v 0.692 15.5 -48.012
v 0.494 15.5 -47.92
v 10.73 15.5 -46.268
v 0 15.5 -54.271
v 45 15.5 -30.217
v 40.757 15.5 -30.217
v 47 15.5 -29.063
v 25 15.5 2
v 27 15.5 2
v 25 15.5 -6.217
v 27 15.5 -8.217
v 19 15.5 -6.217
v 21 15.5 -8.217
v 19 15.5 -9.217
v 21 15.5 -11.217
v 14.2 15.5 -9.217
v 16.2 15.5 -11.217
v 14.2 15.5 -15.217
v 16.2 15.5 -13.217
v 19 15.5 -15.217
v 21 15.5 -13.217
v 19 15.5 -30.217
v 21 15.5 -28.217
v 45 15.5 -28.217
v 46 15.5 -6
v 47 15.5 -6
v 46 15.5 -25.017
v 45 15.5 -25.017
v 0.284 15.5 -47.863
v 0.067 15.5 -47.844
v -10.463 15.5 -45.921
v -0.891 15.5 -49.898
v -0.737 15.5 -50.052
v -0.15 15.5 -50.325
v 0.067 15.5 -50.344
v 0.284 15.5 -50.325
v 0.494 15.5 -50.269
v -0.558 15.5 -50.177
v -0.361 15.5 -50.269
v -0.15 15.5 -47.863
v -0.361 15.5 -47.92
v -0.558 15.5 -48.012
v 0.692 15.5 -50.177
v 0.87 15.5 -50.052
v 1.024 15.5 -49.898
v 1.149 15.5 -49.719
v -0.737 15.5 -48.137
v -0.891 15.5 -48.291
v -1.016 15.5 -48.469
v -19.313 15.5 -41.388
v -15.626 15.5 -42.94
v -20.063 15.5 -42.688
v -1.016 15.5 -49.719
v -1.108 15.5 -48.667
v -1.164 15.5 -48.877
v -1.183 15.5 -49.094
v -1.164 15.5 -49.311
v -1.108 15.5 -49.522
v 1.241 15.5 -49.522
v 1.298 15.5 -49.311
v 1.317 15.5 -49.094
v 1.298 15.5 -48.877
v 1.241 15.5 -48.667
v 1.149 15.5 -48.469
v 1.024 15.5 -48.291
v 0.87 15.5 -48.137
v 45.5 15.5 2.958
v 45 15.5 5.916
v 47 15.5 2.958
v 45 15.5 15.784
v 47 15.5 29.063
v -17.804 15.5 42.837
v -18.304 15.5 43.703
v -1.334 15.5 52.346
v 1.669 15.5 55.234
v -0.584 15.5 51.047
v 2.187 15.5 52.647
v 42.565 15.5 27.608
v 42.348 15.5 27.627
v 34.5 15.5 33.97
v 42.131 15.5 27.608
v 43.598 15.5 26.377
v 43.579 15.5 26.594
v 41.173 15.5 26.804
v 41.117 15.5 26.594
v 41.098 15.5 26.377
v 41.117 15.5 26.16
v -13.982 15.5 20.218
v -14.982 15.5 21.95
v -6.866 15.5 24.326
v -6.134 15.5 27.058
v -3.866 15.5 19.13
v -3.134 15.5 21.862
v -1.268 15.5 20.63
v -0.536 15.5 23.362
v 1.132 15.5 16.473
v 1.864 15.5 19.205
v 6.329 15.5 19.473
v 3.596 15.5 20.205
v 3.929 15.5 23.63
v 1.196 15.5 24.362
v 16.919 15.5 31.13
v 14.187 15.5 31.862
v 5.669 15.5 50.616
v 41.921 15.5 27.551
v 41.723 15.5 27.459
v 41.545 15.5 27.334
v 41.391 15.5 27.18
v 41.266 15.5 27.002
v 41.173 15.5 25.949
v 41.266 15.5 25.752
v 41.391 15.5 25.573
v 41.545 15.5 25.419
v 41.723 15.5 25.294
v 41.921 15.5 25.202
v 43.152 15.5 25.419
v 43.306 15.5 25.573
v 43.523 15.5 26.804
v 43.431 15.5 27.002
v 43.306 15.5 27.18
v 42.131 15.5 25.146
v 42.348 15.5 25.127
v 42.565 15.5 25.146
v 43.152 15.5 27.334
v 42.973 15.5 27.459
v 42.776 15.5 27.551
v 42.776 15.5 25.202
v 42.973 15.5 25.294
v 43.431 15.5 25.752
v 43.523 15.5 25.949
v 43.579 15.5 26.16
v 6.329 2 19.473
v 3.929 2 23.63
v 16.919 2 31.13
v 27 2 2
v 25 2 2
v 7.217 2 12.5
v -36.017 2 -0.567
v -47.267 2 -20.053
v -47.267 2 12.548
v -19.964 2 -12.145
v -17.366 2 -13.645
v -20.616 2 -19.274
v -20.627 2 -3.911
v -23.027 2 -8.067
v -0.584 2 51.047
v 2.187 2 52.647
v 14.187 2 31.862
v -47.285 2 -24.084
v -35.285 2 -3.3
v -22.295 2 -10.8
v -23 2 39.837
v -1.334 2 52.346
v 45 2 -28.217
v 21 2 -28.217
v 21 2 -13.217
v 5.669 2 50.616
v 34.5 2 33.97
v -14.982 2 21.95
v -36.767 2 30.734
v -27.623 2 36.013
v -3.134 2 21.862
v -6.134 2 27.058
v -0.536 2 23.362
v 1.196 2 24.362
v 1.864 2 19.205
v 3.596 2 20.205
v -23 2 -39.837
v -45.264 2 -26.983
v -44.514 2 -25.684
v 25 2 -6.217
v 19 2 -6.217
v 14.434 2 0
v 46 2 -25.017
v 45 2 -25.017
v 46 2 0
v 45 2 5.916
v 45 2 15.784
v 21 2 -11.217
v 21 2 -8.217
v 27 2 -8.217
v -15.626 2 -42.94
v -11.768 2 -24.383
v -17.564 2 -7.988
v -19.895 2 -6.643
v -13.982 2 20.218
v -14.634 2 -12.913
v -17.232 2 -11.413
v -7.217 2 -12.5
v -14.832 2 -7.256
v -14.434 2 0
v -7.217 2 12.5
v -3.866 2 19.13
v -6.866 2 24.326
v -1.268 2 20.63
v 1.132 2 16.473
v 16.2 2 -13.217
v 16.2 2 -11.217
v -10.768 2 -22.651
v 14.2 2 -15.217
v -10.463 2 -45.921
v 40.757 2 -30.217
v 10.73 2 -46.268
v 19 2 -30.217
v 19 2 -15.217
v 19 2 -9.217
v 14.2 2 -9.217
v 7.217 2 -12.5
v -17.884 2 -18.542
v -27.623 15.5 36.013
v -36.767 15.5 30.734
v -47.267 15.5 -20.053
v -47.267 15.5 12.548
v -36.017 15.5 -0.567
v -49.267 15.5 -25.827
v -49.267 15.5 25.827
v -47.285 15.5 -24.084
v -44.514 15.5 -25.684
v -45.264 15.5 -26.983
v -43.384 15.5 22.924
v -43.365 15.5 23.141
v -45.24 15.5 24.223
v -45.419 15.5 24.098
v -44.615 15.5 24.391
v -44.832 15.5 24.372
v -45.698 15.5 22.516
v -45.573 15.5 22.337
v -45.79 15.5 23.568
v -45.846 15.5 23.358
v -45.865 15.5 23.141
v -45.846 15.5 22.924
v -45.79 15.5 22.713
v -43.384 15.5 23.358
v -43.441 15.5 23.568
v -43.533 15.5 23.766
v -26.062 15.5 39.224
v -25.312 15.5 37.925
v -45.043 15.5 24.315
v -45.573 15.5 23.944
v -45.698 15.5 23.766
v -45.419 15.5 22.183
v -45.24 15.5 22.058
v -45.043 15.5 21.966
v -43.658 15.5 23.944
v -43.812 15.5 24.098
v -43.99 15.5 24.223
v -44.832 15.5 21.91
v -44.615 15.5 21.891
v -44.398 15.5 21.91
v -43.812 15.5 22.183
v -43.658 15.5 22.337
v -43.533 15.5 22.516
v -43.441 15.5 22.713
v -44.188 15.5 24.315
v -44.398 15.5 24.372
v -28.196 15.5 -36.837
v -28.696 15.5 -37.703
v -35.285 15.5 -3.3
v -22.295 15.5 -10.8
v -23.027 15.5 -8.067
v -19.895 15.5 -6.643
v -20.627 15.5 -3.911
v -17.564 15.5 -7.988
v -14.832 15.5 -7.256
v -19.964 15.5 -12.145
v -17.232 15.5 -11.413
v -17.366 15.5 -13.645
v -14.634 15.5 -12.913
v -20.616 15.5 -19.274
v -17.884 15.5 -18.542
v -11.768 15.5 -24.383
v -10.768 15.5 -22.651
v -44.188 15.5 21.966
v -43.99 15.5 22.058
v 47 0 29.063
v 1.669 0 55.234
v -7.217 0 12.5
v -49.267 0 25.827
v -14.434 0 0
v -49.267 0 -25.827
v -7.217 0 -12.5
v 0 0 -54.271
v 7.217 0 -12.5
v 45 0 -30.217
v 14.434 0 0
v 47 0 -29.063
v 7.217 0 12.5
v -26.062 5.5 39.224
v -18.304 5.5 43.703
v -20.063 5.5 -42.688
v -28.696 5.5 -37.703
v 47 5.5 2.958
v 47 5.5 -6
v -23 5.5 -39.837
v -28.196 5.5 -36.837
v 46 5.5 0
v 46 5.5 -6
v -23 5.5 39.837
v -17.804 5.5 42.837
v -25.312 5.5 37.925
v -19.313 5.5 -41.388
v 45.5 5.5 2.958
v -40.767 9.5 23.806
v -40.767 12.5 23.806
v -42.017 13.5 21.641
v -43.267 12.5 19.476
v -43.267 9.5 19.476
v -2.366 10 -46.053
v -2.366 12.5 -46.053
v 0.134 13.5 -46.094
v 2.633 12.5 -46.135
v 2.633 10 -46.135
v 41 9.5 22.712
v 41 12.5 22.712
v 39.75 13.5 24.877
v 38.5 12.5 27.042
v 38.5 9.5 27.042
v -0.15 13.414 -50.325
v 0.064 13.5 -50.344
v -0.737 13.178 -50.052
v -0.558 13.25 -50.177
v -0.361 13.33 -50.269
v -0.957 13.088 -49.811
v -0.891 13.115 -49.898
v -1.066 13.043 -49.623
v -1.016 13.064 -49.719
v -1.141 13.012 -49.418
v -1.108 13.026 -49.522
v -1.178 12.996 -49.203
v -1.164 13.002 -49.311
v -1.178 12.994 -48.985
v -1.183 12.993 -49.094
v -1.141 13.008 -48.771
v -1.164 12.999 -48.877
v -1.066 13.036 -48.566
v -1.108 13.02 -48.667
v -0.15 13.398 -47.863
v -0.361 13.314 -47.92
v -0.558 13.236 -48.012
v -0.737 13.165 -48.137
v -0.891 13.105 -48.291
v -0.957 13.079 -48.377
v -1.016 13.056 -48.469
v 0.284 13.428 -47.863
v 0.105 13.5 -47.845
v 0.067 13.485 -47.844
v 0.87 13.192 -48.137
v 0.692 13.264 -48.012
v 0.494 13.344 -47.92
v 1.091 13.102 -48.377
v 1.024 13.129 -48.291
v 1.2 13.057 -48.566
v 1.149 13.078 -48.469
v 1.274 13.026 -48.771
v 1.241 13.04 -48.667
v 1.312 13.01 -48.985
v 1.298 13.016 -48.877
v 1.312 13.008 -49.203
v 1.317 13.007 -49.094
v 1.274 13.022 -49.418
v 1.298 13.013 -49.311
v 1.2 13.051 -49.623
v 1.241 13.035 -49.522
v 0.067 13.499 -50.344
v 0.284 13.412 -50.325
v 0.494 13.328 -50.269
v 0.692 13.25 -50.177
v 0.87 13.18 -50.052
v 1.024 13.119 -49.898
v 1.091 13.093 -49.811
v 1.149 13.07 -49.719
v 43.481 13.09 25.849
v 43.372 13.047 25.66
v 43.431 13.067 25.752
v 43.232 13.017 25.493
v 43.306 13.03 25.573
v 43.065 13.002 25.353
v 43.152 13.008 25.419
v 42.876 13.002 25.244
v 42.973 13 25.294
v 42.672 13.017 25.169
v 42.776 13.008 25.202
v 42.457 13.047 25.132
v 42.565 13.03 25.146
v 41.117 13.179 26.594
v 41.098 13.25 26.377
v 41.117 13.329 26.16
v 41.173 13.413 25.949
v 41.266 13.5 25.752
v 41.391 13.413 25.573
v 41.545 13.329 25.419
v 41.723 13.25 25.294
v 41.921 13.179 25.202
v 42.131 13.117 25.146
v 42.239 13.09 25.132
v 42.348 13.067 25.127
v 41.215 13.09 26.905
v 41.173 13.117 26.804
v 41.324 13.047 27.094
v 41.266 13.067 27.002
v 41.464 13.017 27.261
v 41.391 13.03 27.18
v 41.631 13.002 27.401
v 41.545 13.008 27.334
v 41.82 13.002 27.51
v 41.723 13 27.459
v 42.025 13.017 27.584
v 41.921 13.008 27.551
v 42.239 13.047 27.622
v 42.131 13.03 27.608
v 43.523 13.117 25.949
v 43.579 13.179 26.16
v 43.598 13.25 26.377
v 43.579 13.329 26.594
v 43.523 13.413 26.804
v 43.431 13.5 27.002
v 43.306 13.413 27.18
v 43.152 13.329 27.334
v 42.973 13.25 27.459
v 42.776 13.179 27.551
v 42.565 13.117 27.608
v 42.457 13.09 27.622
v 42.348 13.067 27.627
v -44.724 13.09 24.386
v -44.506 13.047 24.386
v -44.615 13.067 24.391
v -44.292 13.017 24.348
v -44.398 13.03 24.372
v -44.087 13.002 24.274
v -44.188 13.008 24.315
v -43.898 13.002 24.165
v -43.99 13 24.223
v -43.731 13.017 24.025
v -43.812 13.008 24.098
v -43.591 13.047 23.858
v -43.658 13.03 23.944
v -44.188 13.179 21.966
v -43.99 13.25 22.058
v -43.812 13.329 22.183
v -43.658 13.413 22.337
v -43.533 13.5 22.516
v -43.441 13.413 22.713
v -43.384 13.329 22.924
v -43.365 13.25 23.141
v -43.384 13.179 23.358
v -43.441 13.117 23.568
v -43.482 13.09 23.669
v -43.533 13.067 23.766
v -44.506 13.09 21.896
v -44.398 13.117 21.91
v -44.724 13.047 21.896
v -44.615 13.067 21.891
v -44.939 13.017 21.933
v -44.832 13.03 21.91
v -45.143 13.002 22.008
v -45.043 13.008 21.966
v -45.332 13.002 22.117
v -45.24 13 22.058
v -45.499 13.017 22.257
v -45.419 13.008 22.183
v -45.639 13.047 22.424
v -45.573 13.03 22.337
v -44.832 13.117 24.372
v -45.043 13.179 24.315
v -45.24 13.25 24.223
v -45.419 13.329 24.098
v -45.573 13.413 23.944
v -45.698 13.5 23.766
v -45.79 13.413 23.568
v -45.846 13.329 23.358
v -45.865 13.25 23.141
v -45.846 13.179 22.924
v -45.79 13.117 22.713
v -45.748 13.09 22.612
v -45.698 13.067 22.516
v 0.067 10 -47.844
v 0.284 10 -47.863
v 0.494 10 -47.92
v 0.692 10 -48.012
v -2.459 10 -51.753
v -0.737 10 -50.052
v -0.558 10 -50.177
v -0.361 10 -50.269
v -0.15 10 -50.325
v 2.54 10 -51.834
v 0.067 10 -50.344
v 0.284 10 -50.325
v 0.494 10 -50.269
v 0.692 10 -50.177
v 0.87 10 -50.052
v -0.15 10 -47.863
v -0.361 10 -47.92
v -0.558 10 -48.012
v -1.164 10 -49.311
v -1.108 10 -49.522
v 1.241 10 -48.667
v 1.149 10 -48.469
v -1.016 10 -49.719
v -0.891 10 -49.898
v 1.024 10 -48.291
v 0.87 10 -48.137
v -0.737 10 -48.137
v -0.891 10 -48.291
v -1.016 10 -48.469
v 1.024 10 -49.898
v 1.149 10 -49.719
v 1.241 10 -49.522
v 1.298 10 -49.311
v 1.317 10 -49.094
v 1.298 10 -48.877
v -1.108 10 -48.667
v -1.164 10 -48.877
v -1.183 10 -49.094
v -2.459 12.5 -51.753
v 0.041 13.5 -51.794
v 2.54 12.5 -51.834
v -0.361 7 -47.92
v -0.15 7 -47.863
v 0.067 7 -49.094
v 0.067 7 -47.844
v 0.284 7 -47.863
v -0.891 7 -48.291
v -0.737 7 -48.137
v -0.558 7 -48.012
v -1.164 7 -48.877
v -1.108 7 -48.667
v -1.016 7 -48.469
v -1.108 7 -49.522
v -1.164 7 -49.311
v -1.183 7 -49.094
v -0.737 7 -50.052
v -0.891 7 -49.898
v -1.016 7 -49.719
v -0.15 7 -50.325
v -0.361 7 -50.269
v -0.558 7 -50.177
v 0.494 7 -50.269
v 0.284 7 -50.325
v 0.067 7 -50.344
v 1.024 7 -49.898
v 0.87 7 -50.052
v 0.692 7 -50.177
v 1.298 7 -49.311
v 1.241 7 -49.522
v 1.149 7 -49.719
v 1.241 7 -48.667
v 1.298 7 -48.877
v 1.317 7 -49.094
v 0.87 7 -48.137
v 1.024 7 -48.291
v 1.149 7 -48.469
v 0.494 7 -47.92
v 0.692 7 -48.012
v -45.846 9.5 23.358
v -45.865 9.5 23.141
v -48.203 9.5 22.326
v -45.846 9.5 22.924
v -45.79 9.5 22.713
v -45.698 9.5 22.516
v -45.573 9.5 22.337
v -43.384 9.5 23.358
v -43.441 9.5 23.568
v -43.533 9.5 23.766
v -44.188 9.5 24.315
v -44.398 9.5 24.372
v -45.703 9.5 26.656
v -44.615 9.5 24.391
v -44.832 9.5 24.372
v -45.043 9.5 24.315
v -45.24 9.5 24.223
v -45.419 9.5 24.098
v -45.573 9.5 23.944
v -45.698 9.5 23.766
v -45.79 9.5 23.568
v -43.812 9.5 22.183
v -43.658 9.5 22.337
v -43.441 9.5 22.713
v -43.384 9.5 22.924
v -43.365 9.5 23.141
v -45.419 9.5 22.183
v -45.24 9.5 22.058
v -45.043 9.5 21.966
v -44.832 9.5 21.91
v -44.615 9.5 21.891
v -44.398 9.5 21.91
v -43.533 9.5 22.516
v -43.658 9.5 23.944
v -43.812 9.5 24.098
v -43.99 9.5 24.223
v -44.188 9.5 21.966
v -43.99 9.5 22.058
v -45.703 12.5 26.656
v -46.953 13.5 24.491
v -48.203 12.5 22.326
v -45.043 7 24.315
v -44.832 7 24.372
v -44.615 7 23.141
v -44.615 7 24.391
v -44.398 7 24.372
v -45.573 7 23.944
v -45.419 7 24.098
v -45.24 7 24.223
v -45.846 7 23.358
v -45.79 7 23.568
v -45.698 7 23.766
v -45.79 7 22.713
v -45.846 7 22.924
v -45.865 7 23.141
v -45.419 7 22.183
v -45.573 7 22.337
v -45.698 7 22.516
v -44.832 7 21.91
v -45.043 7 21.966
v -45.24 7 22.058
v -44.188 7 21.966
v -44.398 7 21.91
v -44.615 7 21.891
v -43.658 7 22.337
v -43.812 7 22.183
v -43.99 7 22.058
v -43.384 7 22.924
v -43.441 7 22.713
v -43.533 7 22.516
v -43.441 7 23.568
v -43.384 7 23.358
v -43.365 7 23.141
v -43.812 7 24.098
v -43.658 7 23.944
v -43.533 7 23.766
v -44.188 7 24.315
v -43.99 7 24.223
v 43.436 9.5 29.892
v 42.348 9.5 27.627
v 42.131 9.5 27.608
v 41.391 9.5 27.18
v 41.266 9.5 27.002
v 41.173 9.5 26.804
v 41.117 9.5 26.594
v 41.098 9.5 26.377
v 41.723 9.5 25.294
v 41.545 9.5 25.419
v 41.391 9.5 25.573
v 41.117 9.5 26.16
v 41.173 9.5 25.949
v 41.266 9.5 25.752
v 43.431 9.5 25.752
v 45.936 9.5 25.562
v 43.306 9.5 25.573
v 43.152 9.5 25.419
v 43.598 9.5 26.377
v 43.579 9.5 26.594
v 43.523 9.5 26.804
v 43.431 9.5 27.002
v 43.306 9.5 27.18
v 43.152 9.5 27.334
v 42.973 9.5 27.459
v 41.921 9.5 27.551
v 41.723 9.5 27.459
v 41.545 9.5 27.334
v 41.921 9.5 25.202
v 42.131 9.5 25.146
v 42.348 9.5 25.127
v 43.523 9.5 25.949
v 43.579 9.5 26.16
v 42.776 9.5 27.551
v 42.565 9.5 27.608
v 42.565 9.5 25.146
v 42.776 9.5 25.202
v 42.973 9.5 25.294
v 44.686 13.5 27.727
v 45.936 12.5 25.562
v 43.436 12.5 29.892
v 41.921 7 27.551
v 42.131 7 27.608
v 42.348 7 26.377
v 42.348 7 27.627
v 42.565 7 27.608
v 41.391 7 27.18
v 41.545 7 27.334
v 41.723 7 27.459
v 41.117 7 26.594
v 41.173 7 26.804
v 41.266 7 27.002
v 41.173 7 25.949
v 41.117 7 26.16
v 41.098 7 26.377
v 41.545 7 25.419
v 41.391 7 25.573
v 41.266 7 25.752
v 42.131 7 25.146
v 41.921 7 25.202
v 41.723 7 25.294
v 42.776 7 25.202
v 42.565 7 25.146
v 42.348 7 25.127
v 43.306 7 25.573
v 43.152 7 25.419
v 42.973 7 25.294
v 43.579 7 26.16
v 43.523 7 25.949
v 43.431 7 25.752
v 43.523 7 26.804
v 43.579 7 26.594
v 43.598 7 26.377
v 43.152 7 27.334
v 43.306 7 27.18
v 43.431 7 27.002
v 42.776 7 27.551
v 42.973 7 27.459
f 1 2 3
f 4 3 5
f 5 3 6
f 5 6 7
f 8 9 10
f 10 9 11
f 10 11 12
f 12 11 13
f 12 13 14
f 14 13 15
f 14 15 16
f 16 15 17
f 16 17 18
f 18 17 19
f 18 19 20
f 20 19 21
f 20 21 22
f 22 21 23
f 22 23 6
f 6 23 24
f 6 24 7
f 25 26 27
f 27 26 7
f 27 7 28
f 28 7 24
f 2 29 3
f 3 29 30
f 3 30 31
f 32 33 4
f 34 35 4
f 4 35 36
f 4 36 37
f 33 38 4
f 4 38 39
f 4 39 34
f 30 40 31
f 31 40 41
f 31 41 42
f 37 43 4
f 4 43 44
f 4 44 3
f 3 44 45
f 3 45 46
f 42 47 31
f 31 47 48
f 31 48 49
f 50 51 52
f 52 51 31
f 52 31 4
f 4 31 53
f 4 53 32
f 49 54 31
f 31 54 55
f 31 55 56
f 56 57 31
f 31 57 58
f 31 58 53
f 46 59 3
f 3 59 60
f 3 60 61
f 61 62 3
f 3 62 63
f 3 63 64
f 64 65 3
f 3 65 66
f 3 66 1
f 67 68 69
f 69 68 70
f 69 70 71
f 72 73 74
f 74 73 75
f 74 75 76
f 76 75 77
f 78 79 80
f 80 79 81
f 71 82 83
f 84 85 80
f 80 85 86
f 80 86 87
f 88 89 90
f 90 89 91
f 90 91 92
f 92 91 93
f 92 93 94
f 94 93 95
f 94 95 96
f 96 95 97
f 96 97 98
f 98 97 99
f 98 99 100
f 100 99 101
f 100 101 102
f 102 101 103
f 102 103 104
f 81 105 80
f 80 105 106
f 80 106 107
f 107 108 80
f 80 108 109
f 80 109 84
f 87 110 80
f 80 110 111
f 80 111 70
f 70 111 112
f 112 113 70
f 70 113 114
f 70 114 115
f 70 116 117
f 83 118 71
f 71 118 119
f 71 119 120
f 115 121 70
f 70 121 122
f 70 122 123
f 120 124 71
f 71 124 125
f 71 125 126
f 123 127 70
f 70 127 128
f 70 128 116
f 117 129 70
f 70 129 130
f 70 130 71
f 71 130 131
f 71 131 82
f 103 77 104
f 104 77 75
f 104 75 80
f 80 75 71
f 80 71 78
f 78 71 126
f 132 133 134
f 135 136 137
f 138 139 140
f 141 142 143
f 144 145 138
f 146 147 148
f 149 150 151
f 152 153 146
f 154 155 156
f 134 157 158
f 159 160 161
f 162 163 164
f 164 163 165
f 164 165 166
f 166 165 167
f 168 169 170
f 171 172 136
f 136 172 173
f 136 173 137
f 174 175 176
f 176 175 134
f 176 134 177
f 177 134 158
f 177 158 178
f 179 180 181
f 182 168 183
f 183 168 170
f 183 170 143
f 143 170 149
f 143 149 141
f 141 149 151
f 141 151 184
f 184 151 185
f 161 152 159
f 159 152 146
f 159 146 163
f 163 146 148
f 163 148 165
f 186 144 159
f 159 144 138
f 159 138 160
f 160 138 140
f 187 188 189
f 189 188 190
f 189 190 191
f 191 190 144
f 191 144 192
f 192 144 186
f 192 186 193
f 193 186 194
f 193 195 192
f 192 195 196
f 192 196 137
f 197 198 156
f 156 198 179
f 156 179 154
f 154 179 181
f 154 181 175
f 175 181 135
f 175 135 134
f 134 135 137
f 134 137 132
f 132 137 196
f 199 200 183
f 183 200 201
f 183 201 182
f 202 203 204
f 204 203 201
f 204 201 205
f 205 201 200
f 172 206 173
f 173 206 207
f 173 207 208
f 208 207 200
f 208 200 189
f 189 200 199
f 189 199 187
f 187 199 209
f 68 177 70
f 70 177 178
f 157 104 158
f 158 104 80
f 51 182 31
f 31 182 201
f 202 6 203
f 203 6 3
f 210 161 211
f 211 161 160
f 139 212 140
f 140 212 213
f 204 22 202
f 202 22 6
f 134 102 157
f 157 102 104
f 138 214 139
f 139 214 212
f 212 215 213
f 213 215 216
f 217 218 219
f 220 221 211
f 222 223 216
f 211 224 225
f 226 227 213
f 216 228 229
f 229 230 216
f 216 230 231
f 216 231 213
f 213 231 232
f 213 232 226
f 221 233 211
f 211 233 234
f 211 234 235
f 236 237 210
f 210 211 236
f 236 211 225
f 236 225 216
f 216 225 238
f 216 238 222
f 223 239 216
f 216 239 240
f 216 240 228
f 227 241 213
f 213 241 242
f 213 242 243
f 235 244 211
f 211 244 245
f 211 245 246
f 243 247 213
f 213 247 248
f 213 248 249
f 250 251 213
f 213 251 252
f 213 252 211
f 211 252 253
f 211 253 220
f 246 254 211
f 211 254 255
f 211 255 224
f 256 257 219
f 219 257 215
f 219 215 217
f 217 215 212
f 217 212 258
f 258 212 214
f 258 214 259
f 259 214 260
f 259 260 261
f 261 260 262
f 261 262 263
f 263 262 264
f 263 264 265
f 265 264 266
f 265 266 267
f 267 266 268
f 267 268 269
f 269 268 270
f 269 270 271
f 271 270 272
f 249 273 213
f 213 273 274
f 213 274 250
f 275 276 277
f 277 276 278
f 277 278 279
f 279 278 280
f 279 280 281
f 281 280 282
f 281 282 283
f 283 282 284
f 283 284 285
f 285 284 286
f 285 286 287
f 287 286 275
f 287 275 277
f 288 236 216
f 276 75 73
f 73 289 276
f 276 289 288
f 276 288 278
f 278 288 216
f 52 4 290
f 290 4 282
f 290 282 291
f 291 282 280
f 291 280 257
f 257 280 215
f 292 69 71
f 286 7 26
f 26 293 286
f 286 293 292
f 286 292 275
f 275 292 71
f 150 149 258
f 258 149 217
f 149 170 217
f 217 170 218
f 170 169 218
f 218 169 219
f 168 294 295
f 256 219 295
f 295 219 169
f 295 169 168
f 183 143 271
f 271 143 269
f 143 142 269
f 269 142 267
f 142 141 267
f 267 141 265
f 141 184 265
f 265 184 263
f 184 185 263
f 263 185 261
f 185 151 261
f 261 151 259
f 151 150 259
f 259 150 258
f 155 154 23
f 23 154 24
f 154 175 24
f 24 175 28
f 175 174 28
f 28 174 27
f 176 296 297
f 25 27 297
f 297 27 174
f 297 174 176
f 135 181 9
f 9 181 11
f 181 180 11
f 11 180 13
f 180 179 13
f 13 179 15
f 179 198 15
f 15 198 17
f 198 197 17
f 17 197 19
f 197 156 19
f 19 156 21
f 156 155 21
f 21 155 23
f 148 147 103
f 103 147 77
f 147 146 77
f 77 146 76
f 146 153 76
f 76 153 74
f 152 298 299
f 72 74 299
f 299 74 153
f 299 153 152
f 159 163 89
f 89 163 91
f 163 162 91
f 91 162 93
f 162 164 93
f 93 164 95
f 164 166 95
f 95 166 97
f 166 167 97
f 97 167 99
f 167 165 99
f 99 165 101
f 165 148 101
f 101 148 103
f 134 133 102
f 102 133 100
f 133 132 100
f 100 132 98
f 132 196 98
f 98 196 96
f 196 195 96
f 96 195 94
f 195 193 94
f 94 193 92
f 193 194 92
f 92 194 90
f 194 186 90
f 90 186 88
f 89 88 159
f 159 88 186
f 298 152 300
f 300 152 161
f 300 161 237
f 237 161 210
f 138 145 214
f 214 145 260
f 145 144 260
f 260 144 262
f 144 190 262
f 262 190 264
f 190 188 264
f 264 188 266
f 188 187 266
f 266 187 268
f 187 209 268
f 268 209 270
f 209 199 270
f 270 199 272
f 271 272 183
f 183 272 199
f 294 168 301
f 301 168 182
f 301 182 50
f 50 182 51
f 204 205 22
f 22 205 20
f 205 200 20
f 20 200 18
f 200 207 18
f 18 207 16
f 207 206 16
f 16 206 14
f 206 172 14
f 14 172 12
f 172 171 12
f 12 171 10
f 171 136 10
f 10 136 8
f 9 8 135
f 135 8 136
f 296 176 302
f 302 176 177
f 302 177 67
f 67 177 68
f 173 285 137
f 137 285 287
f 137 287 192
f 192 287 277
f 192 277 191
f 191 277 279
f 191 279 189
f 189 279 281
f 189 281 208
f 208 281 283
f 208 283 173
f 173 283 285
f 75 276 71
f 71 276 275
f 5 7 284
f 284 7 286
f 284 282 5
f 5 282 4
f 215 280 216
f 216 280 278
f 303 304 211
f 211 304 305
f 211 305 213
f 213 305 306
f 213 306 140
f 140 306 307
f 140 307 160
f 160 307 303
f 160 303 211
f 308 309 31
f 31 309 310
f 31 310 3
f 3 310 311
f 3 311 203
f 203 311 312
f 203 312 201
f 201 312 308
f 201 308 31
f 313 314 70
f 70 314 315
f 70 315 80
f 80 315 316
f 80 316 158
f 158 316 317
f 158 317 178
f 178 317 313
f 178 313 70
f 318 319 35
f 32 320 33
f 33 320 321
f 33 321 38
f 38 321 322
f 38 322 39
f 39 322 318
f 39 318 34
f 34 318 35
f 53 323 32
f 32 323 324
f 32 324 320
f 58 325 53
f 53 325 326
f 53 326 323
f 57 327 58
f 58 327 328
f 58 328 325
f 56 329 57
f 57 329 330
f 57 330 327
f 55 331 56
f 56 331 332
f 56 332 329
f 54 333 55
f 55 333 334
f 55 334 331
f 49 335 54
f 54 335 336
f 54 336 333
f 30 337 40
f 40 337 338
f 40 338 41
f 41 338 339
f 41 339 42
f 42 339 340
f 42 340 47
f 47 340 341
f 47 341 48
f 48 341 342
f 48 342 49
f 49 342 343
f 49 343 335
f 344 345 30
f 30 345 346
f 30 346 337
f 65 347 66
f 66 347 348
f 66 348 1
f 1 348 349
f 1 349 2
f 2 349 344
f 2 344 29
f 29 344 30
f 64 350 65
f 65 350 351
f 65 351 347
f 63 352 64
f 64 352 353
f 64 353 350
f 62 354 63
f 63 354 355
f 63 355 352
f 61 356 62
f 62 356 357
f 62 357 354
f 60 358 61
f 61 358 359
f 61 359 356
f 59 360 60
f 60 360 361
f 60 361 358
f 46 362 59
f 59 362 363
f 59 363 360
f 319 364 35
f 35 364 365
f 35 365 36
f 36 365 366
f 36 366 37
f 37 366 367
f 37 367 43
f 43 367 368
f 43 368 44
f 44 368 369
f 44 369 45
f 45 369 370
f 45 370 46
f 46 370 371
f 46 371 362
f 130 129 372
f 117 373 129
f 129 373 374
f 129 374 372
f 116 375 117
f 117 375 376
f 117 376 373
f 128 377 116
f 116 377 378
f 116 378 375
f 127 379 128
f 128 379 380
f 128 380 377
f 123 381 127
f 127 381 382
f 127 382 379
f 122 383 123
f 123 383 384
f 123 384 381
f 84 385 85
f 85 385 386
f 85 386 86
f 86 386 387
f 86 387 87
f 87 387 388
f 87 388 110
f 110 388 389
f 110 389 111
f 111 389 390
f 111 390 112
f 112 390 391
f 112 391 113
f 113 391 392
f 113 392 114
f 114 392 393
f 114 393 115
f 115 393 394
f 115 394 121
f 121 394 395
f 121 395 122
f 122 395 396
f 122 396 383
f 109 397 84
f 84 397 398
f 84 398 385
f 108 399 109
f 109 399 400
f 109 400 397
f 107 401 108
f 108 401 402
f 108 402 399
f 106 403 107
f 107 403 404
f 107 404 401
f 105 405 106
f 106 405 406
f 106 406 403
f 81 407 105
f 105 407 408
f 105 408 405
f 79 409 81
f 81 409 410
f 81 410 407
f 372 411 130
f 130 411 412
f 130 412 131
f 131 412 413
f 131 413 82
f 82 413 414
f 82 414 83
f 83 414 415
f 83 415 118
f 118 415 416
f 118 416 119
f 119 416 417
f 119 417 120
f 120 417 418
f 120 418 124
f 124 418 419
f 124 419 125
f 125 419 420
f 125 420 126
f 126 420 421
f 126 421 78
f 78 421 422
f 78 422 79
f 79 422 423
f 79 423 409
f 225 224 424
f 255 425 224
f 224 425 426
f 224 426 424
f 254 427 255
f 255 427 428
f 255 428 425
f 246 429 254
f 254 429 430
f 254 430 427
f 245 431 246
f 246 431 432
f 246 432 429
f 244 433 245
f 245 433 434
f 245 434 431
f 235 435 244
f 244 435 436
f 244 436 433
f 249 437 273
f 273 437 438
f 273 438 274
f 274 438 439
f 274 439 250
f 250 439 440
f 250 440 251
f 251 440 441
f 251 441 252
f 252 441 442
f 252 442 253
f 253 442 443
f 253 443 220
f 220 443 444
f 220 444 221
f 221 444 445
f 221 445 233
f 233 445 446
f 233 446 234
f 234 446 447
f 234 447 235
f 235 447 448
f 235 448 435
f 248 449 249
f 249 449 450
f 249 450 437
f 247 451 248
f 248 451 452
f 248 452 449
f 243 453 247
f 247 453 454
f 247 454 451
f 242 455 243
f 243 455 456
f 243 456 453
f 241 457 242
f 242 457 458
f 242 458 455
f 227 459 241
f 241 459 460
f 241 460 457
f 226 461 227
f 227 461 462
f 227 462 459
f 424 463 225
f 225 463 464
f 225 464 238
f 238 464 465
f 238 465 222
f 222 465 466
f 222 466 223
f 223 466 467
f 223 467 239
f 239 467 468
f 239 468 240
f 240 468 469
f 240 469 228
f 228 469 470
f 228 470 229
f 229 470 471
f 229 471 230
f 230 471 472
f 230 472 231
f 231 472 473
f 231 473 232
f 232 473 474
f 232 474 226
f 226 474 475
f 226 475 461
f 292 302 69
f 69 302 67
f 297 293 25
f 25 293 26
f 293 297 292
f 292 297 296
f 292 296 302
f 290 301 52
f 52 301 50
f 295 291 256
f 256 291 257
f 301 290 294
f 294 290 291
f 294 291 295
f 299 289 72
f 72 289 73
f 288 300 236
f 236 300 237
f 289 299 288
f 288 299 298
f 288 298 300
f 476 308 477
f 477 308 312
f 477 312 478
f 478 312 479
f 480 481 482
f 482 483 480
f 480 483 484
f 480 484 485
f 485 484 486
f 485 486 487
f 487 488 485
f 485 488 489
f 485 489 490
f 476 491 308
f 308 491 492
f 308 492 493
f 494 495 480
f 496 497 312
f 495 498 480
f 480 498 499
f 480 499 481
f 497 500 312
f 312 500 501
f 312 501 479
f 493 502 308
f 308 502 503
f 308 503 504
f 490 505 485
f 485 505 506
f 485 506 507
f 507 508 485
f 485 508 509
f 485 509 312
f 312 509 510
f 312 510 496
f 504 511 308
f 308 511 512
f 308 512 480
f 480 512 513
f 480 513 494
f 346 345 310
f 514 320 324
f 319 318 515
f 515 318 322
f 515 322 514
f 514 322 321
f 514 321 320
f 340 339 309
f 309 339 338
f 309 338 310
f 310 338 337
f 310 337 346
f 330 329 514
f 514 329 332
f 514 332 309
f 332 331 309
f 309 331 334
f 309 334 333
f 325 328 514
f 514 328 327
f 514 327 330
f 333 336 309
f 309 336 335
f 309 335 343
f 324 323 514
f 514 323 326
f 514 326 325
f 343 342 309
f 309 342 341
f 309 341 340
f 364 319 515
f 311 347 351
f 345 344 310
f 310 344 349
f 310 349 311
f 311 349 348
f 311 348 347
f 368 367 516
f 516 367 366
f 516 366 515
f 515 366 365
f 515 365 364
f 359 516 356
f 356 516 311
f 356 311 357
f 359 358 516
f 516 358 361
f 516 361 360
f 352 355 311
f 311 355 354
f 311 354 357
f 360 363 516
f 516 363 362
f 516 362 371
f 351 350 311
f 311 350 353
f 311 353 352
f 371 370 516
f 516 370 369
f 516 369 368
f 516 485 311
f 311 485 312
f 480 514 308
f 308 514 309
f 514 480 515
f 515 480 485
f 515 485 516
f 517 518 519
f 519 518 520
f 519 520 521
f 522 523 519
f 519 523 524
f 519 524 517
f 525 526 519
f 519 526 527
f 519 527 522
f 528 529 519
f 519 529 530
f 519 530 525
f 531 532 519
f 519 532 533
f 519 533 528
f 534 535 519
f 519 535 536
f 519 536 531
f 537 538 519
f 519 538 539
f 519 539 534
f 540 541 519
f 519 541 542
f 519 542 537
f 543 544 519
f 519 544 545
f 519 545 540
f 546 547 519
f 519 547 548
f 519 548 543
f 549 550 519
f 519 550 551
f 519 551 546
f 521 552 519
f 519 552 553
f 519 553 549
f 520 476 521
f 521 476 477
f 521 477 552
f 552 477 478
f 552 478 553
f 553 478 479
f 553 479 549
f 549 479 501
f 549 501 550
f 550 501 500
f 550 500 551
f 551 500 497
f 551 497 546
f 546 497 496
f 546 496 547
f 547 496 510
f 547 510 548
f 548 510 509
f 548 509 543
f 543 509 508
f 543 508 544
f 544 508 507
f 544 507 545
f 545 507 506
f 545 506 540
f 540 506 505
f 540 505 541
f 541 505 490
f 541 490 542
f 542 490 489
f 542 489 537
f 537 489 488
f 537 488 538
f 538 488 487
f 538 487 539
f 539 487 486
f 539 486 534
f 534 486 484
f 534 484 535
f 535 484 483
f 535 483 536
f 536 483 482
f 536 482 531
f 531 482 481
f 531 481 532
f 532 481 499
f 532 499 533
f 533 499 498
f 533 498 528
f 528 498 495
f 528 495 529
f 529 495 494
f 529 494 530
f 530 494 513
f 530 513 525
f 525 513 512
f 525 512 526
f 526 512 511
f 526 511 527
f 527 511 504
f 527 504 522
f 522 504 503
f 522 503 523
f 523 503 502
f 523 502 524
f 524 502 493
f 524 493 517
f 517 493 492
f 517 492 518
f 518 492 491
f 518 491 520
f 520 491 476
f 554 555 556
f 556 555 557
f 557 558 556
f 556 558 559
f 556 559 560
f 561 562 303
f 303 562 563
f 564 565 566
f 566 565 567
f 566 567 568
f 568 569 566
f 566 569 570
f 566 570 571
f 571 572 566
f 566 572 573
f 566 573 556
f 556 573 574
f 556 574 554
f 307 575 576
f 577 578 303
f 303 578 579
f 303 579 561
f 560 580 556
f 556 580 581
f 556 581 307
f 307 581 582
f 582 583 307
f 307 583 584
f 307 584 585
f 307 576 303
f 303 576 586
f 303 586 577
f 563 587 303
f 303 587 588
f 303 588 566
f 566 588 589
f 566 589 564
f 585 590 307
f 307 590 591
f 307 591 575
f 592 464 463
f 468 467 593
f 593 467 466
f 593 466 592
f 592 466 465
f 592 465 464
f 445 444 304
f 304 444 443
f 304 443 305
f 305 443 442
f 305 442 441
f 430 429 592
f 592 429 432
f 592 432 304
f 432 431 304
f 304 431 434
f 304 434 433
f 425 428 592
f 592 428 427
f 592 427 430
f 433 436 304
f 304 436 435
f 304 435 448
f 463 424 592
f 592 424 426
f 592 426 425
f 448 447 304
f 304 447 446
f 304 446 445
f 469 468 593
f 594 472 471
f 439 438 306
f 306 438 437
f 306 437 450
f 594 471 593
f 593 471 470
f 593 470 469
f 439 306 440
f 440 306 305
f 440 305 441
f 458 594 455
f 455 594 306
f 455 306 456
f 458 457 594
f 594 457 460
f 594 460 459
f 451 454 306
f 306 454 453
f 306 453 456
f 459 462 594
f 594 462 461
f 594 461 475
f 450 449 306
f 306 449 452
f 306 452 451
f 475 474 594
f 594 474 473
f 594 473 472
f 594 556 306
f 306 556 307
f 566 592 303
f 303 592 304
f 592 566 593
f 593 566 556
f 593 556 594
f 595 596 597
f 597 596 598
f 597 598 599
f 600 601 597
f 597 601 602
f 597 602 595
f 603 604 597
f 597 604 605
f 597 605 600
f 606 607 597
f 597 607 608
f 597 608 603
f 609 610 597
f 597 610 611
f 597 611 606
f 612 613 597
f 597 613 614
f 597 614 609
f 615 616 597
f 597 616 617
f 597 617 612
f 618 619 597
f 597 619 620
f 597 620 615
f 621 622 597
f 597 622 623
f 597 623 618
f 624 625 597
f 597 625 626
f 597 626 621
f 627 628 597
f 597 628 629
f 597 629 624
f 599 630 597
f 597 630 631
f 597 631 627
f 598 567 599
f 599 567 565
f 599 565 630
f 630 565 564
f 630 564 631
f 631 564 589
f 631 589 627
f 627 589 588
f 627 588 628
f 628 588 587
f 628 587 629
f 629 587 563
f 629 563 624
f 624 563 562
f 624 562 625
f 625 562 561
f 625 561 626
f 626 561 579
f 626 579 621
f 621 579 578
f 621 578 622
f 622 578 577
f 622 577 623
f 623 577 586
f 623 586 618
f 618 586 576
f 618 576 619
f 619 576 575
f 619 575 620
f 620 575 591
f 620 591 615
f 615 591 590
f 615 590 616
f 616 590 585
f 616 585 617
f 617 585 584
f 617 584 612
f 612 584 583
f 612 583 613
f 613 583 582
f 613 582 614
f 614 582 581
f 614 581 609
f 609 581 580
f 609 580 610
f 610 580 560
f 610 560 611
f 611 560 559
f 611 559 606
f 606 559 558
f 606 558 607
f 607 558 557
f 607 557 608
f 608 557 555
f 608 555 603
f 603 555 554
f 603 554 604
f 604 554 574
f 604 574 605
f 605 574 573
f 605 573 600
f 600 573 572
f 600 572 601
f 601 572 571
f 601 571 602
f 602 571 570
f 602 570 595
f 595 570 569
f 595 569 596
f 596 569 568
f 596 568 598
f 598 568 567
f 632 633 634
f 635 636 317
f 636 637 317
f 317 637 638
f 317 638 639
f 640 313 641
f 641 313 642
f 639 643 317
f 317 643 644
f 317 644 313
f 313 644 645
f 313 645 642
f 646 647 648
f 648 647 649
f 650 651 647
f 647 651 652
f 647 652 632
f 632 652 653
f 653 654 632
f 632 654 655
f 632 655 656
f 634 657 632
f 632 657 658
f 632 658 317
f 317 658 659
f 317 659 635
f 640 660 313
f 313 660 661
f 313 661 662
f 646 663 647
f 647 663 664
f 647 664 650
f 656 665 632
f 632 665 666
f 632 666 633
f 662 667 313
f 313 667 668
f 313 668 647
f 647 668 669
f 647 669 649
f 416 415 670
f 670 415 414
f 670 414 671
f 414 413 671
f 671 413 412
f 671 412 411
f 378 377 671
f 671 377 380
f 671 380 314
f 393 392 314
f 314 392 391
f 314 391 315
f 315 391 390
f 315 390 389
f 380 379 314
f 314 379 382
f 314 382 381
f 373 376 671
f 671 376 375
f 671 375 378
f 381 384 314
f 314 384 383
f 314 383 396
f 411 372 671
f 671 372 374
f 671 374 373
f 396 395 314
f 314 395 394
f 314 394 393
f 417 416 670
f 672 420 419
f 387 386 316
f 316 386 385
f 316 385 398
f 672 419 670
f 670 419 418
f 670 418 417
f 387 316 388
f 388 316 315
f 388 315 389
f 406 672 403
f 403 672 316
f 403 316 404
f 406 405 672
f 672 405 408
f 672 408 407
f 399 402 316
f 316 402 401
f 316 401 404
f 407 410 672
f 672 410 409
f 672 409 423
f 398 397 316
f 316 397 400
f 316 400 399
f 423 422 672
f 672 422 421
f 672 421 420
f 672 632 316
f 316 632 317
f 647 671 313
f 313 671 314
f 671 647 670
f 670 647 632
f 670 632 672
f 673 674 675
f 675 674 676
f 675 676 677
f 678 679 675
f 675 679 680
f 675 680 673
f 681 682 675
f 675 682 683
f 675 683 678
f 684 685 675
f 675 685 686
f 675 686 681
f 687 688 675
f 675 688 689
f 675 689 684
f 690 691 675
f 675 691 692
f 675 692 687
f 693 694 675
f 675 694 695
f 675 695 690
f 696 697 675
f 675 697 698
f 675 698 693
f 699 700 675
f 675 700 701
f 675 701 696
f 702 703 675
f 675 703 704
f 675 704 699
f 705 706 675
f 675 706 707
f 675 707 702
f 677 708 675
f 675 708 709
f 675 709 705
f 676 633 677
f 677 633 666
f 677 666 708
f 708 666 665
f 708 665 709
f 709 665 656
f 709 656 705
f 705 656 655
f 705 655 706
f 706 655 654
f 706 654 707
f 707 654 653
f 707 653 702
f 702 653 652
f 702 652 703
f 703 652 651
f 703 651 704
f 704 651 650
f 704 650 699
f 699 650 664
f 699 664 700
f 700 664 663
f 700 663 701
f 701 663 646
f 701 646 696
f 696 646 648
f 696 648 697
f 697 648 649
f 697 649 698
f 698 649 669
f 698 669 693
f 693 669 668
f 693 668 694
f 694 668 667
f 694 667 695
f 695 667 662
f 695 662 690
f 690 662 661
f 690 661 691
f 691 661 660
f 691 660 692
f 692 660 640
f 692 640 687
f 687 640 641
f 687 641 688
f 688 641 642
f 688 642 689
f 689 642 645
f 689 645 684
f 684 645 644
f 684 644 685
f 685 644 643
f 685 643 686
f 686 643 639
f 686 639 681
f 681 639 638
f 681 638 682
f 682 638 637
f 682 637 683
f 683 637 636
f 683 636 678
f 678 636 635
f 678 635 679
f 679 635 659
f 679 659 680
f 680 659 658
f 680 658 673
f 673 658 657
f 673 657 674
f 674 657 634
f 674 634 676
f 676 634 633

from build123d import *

# Parameters (mm, degrees)
BOSS_EXTRUDE1_DEPTH = 15.5
CUT_EXTRUDE1_DEPTH  = 24
CUT_EXTRUDE2_DEPTH  = 13.5
CUT_EXTRUDE3_DEPTH  = 13.5
CUT_EXTRUDE4_DEPTH  = 13.5
SKETCH6_R           = 1.15
CUT_EXTRUDE5_DEPTH  = 10.5
SKETCH8_W           = 5
SKETCH8_H           = 2
CUT_EXTRUDE7_DEPTH  = 5.5
SKETCH9_W           = 5
SKETCH9_H           = 2
CUT_EXTRUDE8_DEPTH  = 5.5
SKETCH10_W          = 5
SKETCH10_H          = 2
CUT_EXTRUDE9_DEPTH  = 5.5
CUT_EXTRUDE10_DEPTH = 20
BOSS_EXTRUDE2_DEPTH = 13.5
BOSS_EXTRUDE3_DEPTH = 13.5
SKETCH15_R          = 1.25
CUT_EXTRUDE11_DEPTH = 8.5
SKETCH19_W          = 17
SKETCH19_H          = 2
CUT_EXTRUDE15_DEPTH = 13.5
CUT_EXTRUDE16_DEPTH = 10
CUT_EXTRUDE17_DEPTH = 5.7
CUT_EXTRUDE18_DEPTH = 5.7
CUT_EXTRUDE19_DEPTH = 5.7


with BuildPart() as part:
    # Sketch1 → Boss-Extrude1 (new body)
    with BuildSketch(Plane(origin=(0, 0, 0), x_dir=(1, 0, 0), z_dir=(0, 1, 0))):
        Polygon((127, 0), (-63.5, 109.985226281), (-63.5, -109.985226281), align=None)
    extrude(amount=BOSS_EXTRUDE1_DEPTH)

    # Sketch2 → Cut-Extrude1 (cut)
    with BuildSketch(Plane(origin=(0, 15.5, 0), x_dir=(1, 0, 0), z_dir=(0, 1, 0))):
        Polygon((-63.5, -109.985226281), (16.5, -63.797204745), (-63.5, -17.60918321), align=None)
        Polygon((-63.5, 109.985226281), (16.5, 63.797204745), (-63.5, 17.60918321), align=None)
        Polygon((127, 0), (47, 46.188021535), (47, -46.188021535), align=None)
    extrude(amount=-CUT_EXTRUDE1_DEPTH, mode=Mode.SUBTRACT)

    # Sketch3 → Cut-Extrude2 (cut)
    with BuildSketch(Plane(origin=(0, 15.5, 0), x_dir=(1, 0, 0), z_dir=(0, 1, 0))):
        Polygon((21, 28.217265235), (21, 13.217265235), (16.2, 13.217265235), (16.2, 11.217265235), (21, 11.217265235), (21, 8.217265235), (27, 8.217265235), (27, 0), (45, 0), (46, 0), (46, 21.217265235), (46, 25.017265235), (45, 25.017265235), (45, 28.217265235), align=None)
        Polygon((14.186868519, -31.862153395), (1.196487462, -24.362153395), (3.596487462, -20.205231457), (1.864436654, -19.205231457), (-0.535563346, -23.362153395), (-3.133639557, -21.862153395), (-6.133639557, -27.058305818), (-13.25, -22.9496732), (-22.25, -38.538130468), (-23, -39.837168574), (-4.625309308, -50.445801192), (-1.334412773, -52.345801192), (-0.584412773, -51.046763086), (2.186868519, -52.646763086), align=None)
        Polygon((-35.28503876, 3.29953441), (-22.294657703, 10.79953441), (-19.894657703, 6.642612472), (-17.564436654, 7.987966222), (-19.964436654, 12.14488816), (-17.366360443, 13.64488816), (-20.616360443, 19.274053285), (-13.5, 23.382685902), (-22.5, 38.97114317), (-23, 39.837168574), (-41.374690692, 29.228535957), (-45.263757468, 26.983182207), (-44.513757468, 25.684144101), (-47.28503876, 24.084144101), align=None)
    extrude(amount=-CUT_EXTRUDE2_DEPTH, mode=Mode.SUBTRACT)

    # Sketch4 → Cut-Extrude3 (cut)
    with BuildSketch(Plane(origin=(0, 15.5, 0), x_dir=(1, 0, 0), z_dir=(0, 1, 0))):
        Polygon((3.668919326, -54.079775788), (16.5, -61.487803669), (35, -50.806823689), (45, -33.486315613), (45, -5.916079783), (46, 0), (44, 0), (44, -2), (25, -2), (25, 6.217265235), (19, 6.217265235), (19, 9.217265235), (14.2, 9.217265235), (14.2, 15.217265235), (19, 15.217265235), (19, 30.217265235), (45, 30.217265235), (45, 45.033320997), (26.5, 55.714300977), (6.5, 55.714300977), (-15.626136458, 42.939770137), (-23, 39.837168574), (-22, 38.105117767), (-20.267949192, 39.105117767), (-10.767949192, 22.650635095), (-17.884309636, 18.542002477), (-14.634309636, 12.912837353), (-17.232385847, 11.412837353), (-14.832385847, 7.255915414), (-20.626708511, 3.910561665), (-23.026708511, 8.067483603), (-36.017089568, 0.567483603), (-49.267089568, 23.517156803), (-61.5, 16.454482672), (-61.5, -4.907477288), (-51.5, -22.227985364), (-27.623475383, -36.013103279), (-23, -39.837168574), (-22, -38.105117767), (-23.732050808, -37.105117767), (-13.982050808, -20.217622393), (-6.865690364, -24.32625501), (-3.865690364, -19.130102587), (-1.267614153, -20.630102587), (1.132385847, -16.473180649), (6.32853827, -19.473180649), (3.92853827, -23.630102587), (16.918919326, -31.130102587), align=None)
    extrude(amount=-CUT_EXTRUDE3_DEPTH, mode=Mode.SUBTRACT)

    # Sketch5 → Cut-Extrude4 (cut)
    with BuildSketch(Plane(origin=(0, 2, 0), x_dir=(1, 0, 0), z_dir=(0, 1, 0))):
        Polygon((14.43375673, 0), (7.216878365, 12.5), (-7.216878365, 12.5), (-14.43375673, 0), (-7.216878365, -12.5), (7.216878365, -12.5), align=None)
    extrude(amount=-CUT_EXTRUDE4_DEPTH, mode=Mode.SUBTRACT)

    # Sketch6 → Cut-Extrude5 (cut)
    with BuildSketch(Plane(origin=(0, 15.5, 0), x_dir=(1, 0, 0), z_dir=(0, 1, 0))):
        with Locations((-59.125, -15.083275783)):
            Circle(SKETCH6_R)
        with Locations((16.5, 58.74538989)):
            Circle(SKETCH6_R)
        with Locations((42.625, -43.662114107)):
            Circle(SKETCH6_R)
    extrude(amount=-CUT_EXTRUDE5_DEPTH, mode=Mode.SUBTRACT)

    # Sketch8 → Cut-Extrude7 (cut)
    with BuildSketch(Plane(origin=(-48.25, 0, 27.857150488), x_dir=(-0.5, 0, -0.866025404), z_dir=(0.866025404, 0, -0.5))):
        with Locations((16.5, 5.1)):
            Rectangle(SKETCH8_W, SKETCH8_H)
    extrude(amount=-CUT_EXTRUDE7_DEPTH, mode=Mode.SUBTRACT)

    # Sketch9 → Cut-Extrude8 (cut)
    with BuildSketch(Plane(origin=(48.25, 0, 27.857150488), x_dir=(-0.5, 0, 0.866025404), z_dir=(-0.866025404, 0, -0.5))):
        with Locations((16.5, 5.1)):
            Rectangle(SKETCH9_W, SKETCH9_H)
    extrude(amount=-CUT_EXTRUDE8_DEPTH, mode=Mode.SUBTRACT)

    # Sketch10 → Cut-Extrude9 (cut)
    with BuildSketch(Plane.XY.offset(-55.714300977)):
        with Locations((16.5, 5.1)):
            Rectangle(SKETCH10_W, SKETCH10_H)
    extrude(amount=-CUT_EXTRUDE9_DEPTH, mode=Mode.SUBTRACT)

    # Sketch12 → Cut-Extrude10 (cut)
    with BuildSketch(Plane(origin=(0, 15.5, 0), x_dir=(1, 0, 0), z_dir=(0, 1, 0))):
        Polygon((-49.267089568, 23.517156803), (-49.267089568, -25.82655788), (-63.5, -17.60918321), (-63.5, 17.60918321), (-49.267089568, 25.82655788), align=None)
        Polygon((3.668919326, -54.079775788), (47, -29.062564697), (47, -46.188021535), (16.5, -63.797204745), (1.668919326, -55.234476326), align=None)
        Polygon((45, 30.217265235), (0, 54.270925304), (16.5, 63.797204745), (47, 46.188021535), (47, 29.062564697), align=None)
    extrude(amount=-CUT_EXTRUDE10_DEPTH, mode=Mode.SUBTRACT)

    # Sketch13 → Boss-Extrude2 (add)
    with BuildSketch(Plane(origin=(0, 2, 0), x_dir=(1, 0, 0), z_dir=(0, 1, 0))):
        Polygon((-49.267089568, -23.517156803), (-49.267089568, 23.517156803), (-47.267089568, 20.053055188), (-47.267089568, -24.671857341), align=None)
        Polygon((45, -30.217265235), (3.668919326, -54.079775788), (5.668919326, -50.615674173), (45, -27.907864158), align=None)
        Polygon((45, 30.217265235), (2.07703105, 53.160698663), (0.037424254, 51.98313113), (40.757379657, 30.217265235), align=None)
    extrude(amount=BOSS_EXTRUDE2_DEPTH)

    # Sketch14 → Boss-Extrude3 (add)
    with BuildSketch(Plane(origin=(0, 2, 0), x_dir=(1, 0, 0), z_dir=(0, 1, 0))):
        Polygon((-47.267089568, -24.671857341), (-36.767089568, -30.734035168), (-47.267089568, -12.547501688), align=None)
        Polygon((0.037424254, 51.98313113), (-10.462575746, 45.920953304), (10.730086226, 46.267627657), align=None)
        Polygon((45, -27.907864158), (45, -15.783508505), (34.5, -33.970041985), align=None)
    extrude(amount=BOSS_EXTRUDE3_DEPTH)

    # Sketch15 → Cut-Extrude11 (cut)
    with BuildSketch(Plane(origin=(0, 15.5, 0), x_dir=(1, 0, 0), z_dir=(0, 1, 0))):
        with Locations((-44.615165779, -23.140768428)):
            Circle(SKETCH15_R)
        with Locations((42.348076211, -26.376775245)):
            Circle(SKETCH15_R)
        with Locations((0.06687762, 49.09429048)):
            Circle(SKETCH15_R)
    extrude(amount=-CUT_EXTRUDE11_DEPTH, mode=Mode.SUBTRACT)

    # Sketch19 → Cut-Extrude15 (cut)
    with BuildSketch(Plane(origin=(0, 15.5, 0), x_dir=(1, 0, 0), z_dir=(0, 1, 0))):
        Polygon((-13.25, -22.9496732), (-22, -38.105117767), (-23.732050808, -37.105117767), (-14.982050808, -21.9496732), align=None)
        Polygon((-13.5, 23.382685902), (-22, 38.105117767), (-20.267949192, 39.105117767), (-11.767949192, 24.382685902), align=None)
        with Locations((35.5, -1)):
            Rectangle(SKETCH19_W, SKETCH19_H)
    extrude(amount=-CUT_EXTRUDE15_DEPTH, mode=Mode.SUBTRACT)

    # Sketch20 → Cut-Extrude16 (cut)
    with BuildSketch(Plane(origin=(0, 15.5, 0), x_dir=(1, 0, 0), z_dir=(0, 1, 0))):
        Polygon((46, 0), (45.5, -2.958039892), (47, -2.958039892), (47, 0), (47, 6), (46, 6), align=None)
        Polygon((-23, 39.837168574), (-28.196152423, 36.837168574), (-28.696152423, 37.703193978), (-23.5, 40.703193978), (-20.063068229, 42.687507461), (-19.313068229, 41.388469355), align=None)
        Polygon((-23, -39.837168574), (-17.803847577, -42.837168574), (-18.303847577, -43.703193978), (-23.5, -40.703193978), (-26.061737691, -39.224174032), (-25.311737691, -37.925135926), align=None)
    extrude(amount=-CUT_EXTRUDE16_DEPTH, mode=Mode.SUBTRACT)

    # Sketch16 → Cut-Extrude17 (cut)
    with BuildSketch(Plane(origin=(-0.753783321, 0, -46.079771924), x_dir=(0.999866231, 0, -0.016356038), z_dir=(0.016356038, 0, 0.999866231))):
        Polygon((-1.612342698, 12.5), (0.887657302, 13.5), (3.387657302, 12.5), (3.387657302, 10), (-1.612342698, 10), align=None)
    extrude(amount=-CUT_EXTRUDE17_DEPTH, mode=Mode.SUBTRACT)

    # Sketch17 → Cut-Extrude18 (cut)
    with BuildSketch(Plane(origin=(-40.883544784, 0, 23.604125586), x_dir=(-0.5, 0, -0.866025404), z_dir=(0.866025404, 0, -0.5))):
        Polygon((-0.232910432, 12.5), (-0.232910432, 9.5), (4.767089568, 9.5), (4.767089568, 12.5), (2.267089568, 13.5), align=None)
    extrude(amount=-CUT_EXTRUDE18_DEPTH, mode=Mode.SUBTRACT)

    # Sketch18 → Cut-Extrude19 (cut)
    with BuildSketch(Plane(origin=(40.584459663, 0, 23.431448711), x_dir=(-0.5, 0, 0.866025404), z_dir=(-0.866025404, 0, -0.5))):
        Polygon((-0.831080674, 12.5), (-0.831080674, 9.5), (4.168919326, 9.5), (4.168919326, 12.5), (1.668919326, 13.5), align=None)
    extrude(amount=-CUT_EXTRUDE19_DEPTH, mode=Mode.SUBTRACT)


solid = part.part
